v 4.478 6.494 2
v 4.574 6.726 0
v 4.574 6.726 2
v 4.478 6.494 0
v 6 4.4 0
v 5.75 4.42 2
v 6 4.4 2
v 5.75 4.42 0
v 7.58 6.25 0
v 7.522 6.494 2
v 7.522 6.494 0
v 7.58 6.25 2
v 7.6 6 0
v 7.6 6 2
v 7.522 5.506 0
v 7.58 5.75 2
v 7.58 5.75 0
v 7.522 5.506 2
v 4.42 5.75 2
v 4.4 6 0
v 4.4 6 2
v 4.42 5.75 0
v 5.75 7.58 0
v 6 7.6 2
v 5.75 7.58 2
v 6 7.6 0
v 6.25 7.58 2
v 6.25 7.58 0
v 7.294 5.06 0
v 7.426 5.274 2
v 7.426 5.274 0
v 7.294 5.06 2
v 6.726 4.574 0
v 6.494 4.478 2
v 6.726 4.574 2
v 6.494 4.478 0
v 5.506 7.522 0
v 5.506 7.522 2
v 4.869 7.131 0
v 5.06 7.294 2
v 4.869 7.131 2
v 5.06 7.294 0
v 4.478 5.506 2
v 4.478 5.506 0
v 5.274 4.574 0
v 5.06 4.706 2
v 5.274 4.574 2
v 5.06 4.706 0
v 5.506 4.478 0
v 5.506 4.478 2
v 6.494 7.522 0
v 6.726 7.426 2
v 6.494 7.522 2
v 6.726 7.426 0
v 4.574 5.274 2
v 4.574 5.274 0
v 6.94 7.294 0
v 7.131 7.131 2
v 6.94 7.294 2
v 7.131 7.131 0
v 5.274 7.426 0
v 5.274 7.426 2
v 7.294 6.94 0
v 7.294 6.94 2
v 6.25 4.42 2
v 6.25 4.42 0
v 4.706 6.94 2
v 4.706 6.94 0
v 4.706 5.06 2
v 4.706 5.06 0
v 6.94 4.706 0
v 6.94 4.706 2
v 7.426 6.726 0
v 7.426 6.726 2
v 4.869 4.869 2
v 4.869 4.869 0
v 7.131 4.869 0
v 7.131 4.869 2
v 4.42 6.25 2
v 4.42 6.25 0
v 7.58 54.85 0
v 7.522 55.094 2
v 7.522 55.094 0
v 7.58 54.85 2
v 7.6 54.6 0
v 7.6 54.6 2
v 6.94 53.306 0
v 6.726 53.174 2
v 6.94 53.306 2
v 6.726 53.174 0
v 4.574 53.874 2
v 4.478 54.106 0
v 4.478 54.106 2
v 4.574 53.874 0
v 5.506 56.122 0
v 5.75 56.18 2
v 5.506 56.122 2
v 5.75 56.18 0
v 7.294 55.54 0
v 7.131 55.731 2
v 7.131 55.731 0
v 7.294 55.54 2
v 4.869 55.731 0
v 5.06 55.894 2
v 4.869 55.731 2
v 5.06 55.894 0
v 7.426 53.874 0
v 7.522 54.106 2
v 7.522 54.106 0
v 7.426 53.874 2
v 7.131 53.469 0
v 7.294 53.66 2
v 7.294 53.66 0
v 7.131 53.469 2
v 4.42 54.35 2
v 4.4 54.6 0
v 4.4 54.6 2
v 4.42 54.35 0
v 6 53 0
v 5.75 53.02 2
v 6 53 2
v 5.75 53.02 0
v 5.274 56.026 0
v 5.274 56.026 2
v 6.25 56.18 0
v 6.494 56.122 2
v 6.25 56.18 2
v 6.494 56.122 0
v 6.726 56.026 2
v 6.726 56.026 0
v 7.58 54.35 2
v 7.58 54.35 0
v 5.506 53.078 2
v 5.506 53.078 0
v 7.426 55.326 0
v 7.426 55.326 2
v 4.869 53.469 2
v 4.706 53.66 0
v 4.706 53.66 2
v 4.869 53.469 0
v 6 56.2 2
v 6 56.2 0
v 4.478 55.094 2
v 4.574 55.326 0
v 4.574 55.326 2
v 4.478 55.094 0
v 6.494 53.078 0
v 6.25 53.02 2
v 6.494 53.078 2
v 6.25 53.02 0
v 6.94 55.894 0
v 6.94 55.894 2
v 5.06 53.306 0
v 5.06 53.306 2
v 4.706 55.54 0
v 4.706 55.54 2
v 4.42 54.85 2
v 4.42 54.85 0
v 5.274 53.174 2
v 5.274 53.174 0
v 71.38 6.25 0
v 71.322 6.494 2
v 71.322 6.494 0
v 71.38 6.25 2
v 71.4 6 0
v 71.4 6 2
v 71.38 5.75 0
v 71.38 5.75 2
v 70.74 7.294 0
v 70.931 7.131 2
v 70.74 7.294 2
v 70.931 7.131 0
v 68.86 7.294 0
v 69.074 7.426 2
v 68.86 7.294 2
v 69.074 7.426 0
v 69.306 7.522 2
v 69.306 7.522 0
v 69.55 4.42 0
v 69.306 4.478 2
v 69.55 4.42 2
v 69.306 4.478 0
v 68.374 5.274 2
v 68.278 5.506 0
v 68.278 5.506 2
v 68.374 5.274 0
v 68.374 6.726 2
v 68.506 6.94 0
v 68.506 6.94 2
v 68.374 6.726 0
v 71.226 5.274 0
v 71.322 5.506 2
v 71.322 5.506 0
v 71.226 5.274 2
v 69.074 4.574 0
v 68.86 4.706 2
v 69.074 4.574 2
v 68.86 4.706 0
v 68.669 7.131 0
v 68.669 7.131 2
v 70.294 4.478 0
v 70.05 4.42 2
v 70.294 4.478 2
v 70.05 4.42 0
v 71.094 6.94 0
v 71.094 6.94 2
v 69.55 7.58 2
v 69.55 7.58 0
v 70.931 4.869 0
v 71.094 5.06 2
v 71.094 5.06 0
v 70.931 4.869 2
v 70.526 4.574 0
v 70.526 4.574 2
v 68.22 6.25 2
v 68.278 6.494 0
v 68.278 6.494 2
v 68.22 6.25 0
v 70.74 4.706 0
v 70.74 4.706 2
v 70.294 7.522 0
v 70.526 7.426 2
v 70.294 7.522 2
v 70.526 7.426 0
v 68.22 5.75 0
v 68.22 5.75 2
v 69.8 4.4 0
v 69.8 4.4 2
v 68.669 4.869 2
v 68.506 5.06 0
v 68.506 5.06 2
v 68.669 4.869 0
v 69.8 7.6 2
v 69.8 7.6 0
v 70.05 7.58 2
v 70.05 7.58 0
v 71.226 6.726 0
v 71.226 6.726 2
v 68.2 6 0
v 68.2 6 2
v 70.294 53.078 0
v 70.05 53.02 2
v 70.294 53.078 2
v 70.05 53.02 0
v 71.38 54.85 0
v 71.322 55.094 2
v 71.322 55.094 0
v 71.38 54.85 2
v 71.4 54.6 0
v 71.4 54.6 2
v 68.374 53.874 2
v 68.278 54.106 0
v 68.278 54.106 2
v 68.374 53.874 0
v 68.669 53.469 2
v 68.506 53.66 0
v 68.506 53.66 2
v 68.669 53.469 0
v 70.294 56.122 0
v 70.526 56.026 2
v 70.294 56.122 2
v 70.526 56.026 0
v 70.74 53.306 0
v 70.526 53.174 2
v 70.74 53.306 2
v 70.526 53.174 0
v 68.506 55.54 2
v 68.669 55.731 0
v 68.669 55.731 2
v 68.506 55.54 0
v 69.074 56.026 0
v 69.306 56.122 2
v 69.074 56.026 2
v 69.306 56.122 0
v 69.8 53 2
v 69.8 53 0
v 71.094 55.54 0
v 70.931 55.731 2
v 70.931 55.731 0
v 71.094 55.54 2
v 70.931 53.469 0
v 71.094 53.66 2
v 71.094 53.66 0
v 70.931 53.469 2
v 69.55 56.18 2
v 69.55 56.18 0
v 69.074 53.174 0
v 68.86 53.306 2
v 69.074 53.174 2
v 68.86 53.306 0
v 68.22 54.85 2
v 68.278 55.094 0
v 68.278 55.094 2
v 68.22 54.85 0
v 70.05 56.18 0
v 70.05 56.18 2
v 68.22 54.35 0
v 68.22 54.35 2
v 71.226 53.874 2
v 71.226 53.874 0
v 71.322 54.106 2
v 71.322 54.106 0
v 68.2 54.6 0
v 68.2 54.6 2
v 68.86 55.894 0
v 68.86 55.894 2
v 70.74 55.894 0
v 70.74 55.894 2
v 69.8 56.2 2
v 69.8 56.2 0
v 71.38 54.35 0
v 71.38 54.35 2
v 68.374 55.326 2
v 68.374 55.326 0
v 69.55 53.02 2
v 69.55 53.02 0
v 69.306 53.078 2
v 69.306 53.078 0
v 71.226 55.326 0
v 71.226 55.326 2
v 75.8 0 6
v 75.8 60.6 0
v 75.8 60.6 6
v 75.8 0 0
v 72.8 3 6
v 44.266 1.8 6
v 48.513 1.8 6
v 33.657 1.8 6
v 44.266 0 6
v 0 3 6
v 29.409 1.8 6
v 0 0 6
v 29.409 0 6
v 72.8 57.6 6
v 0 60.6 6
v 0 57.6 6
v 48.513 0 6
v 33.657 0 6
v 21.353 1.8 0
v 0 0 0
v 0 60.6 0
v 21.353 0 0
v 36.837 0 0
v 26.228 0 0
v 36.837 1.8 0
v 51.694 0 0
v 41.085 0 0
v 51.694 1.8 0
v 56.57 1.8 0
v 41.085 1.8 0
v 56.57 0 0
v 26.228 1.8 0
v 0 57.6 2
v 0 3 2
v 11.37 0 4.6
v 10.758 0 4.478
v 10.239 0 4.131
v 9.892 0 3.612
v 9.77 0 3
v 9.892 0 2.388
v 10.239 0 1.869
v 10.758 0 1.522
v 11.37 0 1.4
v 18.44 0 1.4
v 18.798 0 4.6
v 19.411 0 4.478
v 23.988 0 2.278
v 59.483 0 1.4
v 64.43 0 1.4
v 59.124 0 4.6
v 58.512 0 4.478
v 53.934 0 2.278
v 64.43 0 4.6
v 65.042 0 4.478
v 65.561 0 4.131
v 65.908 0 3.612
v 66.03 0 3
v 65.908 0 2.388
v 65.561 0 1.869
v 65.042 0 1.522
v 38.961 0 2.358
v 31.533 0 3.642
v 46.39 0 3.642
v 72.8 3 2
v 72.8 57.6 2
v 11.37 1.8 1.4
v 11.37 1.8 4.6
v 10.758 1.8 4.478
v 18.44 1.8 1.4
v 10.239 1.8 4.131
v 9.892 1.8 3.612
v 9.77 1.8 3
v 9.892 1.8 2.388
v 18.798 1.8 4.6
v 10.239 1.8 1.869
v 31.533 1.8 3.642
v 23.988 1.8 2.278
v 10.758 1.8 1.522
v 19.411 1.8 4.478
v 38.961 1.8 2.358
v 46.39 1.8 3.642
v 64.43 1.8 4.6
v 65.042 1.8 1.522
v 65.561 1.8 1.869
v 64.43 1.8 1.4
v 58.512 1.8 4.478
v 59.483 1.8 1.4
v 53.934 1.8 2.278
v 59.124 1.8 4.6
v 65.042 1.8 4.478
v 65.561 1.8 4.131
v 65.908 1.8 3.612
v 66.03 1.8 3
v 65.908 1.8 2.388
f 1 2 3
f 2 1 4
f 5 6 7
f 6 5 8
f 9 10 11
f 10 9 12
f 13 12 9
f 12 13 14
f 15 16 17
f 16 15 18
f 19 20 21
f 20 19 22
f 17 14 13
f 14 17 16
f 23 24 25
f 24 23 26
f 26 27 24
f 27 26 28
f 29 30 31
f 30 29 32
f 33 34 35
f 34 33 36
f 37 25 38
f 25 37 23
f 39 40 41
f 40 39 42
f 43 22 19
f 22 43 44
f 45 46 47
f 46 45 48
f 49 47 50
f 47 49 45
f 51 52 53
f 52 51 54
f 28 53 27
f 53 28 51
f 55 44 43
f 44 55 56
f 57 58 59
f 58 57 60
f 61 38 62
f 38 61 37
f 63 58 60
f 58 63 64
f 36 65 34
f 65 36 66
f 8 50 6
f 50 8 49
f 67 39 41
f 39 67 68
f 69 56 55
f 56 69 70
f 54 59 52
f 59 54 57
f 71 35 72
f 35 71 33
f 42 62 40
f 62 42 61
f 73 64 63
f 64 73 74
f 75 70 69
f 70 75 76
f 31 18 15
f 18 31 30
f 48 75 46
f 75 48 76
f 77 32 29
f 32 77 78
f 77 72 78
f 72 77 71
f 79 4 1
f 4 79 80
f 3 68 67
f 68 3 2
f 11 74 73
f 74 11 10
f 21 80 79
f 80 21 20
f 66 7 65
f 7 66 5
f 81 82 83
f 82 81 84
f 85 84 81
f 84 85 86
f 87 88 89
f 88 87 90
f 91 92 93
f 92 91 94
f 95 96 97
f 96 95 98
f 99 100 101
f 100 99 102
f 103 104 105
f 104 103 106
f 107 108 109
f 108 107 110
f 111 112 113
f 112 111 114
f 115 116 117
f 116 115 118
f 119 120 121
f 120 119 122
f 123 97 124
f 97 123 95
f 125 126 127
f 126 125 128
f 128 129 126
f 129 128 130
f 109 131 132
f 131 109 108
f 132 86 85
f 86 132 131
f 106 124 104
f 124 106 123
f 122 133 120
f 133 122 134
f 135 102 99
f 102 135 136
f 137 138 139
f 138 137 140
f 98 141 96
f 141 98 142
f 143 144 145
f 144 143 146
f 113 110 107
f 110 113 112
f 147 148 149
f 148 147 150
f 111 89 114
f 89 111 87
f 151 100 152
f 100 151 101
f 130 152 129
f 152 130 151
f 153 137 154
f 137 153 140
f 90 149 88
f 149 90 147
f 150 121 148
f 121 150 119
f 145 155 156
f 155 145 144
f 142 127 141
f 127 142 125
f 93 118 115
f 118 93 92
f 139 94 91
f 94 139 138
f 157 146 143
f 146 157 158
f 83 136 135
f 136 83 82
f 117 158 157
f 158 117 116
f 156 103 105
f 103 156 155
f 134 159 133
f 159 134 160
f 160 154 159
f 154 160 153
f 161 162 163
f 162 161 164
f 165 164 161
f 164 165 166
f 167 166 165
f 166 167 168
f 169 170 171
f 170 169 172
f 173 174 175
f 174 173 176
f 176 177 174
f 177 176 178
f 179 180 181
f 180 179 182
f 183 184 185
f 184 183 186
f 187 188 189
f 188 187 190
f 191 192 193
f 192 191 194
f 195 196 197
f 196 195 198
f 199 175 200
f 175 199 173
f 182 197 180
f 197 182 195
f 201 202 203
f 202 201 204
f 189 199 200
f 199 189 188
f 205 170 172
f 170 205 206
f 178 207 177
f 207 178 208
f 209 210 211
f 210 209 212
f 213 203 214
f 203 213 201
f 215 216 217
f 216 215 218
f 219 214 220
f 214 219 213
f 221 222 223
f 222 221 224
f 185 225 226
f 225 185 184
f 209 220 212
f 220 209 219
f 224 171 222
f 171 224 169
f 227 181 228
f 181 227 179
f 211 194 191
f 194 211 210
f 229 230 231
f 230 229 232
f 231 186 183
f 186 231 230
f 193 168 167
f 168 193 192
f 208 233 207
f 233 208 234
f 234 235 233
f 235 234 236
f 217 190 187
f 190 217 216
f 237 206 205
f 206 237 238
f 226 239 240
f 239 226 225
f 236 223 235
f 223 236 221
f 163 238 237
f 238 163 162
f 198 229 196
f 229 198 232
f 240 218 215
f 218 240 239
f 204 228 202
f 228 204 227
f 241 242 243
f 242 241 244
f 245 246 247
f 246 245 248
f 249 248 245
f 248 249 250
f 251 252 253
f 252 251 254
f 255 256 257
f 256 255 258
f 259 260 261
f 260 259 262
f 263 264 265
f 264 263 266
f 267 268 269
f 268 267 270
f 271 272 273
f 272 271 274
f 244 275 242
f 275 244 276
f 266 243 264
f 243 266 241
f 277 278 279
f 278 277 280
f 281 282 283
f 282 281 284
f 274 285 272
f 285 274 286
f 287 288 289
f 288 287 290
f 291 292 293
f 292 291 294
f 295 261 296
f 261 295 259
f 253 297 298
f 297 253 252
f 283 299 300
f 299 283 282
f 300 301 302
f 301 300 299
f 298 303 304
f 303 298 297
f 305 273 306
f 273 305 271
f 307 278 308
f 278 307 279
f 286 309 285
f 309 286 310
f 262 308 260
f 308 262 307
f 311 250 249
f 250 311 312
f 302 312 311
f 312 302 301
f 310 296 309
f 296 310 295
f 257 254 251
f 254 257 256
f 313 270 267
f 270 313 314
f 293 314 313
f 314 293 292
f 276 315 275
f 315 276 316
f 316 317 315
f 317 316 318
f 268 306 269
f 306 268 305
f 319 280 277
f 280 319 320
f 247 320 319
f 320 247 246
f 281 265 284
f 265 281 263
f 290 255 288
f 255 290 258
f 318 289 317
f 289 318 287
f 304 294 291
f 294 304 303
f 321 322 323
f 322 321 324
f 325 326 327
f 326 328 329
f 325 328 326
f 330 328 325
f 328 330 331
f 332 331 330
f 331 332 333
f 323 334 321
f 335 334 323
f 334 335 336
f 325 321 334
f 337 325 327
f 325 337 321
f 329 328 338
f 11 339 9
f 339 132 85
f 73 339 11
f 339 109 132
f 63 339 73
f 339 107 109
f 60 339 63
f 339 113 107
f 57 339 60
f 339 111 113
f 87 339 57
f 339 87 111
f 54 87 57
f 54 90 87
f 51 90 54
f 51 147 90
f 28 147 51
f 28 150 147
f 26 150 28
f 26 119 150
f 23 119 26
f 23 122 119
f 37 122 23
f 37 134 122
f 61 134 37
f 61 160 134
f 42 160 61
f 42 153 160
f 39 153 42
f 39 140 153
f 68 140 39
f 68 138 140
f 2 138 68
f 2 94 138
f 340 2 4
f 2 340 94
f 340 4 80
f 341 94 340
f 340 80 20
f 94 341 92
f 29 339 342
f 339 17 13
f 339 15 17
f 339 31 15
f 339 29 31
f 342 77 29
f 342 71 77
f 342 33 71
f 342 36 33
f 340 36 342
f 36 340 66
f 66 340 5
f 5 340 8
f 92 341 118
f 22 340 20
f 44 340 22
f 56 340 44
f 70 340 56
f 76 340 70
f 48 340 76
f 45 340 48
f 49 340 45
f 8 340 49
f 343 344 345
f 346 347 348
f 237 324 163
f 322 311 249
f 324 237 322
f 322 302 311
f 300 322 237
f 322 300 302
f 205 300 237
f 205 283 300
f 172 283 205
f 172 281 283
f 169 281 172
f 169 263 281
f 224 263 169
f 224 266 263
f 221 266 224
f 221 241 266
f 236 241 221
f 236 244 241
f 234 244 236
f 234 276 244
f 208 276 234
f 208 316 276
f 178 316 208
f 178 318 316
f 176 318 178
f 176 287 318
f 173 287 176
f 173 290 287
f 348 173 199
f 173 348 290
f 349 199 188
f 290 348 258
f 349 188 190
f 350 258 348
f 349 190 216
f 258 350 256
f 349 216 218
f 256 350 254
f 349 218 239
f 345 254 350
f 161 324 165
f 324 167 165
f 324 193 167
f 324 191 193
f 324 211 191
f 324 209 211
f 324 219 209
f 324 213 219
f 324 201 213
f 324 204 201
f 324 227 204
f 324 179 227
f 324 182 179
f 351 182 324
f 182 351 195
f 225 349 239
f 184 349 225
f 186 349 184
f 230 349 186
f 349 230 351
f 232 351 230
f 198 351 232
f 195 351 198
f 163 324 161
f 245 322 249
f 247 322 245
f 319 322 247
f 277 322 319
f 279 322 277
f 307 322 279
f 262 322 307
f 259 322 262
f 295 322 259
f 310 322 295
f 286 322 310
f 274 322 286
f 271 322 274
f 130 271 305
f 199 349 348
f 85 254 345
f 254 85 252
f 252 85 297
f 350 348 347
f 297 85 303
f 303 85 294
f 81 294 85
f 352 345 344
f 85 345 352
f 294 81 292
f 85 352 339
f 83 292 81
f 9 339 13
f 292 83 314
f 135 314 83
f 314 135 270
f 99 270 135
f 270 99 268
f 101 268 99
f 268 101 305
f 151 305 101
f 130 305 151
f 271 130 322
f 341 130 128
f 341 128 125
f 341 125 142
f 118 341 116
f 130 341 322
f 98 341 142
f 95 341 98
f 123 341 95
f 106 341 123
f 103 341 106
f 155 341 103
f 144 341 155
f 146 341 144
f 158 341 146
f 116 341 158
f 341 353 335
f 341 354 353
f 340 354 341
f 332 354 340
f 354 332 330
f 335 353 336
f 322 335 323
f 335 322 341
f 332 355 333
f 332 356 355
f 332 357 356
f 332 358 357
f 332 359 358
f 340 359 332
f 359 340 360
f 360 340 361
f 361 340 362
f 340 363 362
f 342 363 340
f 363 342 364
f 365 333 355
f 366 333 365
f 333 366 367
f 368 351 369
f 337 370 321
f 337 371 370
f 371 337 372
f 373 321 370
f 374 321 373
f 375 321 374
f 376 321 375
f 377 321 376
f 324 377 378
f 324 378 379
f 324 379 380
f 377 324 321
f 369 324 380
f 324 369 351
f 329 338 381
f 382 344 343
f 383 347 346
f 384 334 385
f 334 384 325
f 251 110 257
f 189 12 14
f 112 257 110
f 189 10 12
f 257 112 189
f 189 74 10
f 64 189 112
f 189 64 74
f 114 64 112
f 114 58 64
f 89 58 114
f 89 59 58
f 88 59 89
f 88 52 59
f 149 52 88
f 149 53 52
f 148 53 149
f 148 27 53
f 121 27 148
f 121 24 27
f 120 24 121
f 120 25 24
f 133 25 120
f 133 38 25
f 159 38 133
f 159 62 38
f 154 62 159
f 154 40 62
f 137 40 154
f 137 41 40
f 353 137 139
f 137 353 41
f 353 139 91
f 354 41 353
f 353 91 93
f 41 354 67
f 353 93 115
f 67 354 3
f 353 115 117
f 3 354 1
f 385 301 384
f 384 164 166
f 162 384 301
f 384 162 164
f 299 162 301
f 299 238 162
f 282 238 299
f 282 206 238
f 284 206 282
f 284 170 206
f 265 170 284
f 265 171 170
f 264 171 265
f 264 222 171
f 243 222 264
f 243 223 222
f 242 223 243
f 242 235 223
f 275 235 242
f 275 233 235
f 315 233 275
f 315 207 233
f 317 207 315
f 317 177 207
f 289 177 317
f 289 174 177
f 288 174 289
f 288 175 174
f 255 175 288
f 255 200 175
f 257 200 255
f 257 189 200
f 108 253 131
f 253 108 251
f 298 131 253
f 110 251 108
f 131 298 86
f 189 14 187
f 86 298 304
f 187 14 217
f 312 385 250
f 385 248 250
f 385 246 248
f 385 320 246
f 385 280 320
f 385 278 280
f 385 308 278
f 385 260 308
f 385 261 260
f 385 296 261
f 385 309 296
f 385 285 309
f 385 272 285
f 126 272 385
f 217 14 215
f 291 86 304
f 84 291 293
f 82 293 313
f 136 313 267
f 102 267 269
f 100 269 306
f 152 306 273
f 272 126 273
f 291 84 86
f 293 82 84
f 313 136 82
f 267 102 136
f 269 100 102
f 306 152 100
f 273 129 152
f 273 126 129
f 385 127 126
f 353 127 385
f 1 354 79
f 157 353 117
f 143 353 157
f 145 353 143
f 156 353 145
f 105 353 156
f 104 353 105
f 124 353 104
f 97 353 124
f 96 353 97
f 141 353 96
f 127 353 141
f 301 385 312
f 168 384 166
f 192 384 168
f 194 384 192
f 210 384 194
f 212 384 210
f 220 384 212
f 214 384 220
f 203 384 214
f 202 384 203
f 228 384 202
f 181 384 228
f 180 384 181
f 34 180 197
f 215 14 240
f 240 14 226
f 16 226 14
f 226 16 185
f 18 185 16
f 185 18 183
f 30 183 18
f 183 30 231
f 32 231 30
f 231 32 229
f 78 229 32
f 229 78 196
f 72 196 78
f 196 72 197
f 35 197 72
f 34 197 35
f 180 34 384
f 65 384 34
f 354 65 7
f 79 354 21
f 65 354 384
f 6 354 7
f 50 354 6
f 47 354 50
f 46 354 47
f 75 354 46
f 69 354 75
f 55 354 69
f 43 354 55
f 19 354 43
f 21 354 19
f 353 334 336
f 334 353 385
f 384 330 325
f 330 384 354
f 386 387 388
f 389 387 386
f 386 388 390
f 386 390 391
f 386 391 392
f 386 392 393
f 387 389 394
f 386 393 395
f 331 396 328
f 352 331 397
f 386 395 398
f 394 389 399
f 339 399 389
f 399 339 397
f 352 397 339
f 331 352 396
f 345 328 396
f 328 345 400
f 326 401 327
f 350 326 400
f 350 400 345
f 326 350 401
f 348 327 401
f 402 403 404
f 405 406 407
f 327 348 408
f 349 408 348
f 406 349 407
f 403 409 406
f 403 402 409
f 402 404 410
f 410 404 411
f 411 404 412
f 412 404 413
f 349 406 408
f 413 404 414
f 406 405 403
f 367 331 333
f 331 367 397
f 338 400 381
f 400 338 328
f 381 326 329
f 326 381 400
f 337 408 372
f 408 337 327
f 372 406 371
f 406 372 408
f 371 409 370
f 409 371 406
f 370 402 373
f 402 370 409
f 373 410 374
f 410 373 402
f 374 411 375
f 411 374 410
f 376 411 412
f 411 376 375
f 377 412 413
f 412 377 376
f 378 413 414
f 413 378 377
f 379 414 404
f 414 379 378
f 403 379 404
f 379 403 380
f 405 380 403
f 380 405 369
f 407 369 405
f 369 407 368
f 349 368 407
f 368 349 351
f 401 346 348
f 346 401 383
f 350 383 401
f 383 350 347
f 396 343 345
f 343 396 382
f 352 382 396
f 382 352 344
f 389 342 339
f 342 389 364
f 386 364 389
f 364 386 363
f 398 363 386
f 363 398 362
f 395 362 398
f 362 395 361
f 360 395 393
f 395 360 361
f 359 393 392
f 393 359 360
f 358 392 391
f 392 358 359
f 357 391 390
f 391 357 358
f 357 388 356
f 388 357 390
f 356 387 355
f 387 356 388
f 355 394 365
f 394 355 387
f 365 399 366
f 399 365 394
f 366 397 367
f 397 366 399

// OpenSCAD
// Base aberta pro Arduino Uno/Nano — fiação toda visível por cima (mesmo espírito da protoboard_tray)
// Não trava nos furos de parafuso do próprio Arduino: é uma bandeja com aba (lip),
// só segura a placa pelas bordas. Furos de fixação são pra prender a bandeja na bancada.

// --- Parametros do Arduino Uno R3 ---
pcb_l = 68.6;
pcb_w = 53.4;

// Conectores (USB + jack de energia) ficam na mesma ponta curta (largura), avançando um pouco
// pra fora da borda da placa — corte generoso, não precisa ser milimetricamente exato porque
// tudo fica exposto/visível de qualquer forma.
conn_overhang = 4;   // quanto o conector avança além da borda do PCB
conn_h        = 14;  // altura livre do rasgo (cobre USB + jack de uma vez)

// --- Parametros da bandeja (iguais à protoboard_tray pra manter o mesmo visual) ---
clearance  = 0.6;   // folga um pouco maior que a protoboard (Arduino tem componentes salientes embaixo)
wall_t     = 3;      // engrossada de 2->3mm pra aguentar uma gravação bem mais funda e visível
floor_t    = 2;
lip_h      = 4;      // um pouco mais alto pra segurar o Arduino, que é mais pesado que a protoboard
hole_d     = 3.2;    // furo M3 pra fixar na bancada
hole_inset = 6;

// --- Selo gravado (símbolo de resistor) na parede da frente (Y=0), a que não tem
// corte de conector — gravação bem marcada, mas ainda sem vazar a parede (3mm) ---
engrave_depth = 1.8;   // sobra 1,2mm de parede sólida atrás — bem mais funda que antes (era 1,0/2mm)
res_line_r    = 1.6;   // linha bem mais grossa que antes (era 0,9)

$fn = 40;

outer_l = pcb_l + 2*clearance + 2*wall_t;
outer_w = pcb_w + 2*clearance + 2*wall_t;
total_h = floor_t + lip_h;

res_w = outer_l * 0.7;
res_h = total_h * 0.85;

// pontos do símbolo clássico de resistor (zigue-zague), normalizados em res_w x res_h
function res_pts() = [
    [0.00*res_w,  0.0*res_h],
    [0.14*res_w,  0.0*res_h],
    [0.24*res_w,  0.5*res_h],
    [0.38*res_w, -0.5*res_h],
    [0.52*res_w,  0.5*res_h],
    [0.66*res_w, -0.5*res_h],
    [0.80*res_w,  0.5*res_h],
    [0.90*res_w,  0.0*res_h],
    [1.00*res_w,  0.0*res_h],
];

// desenha uma linha grossa em 2D como corrente de cápsulas (hull de círculos) —
// evita polígono autointersectante (problema que já pegamos no raio do pedestal)
module linha_grossa_2d(pts, r) {
    for (i = [0 : len(pts) - 2])
        hull() {
            translate(pts[i]) circle(r = r, $fn = 16);
            translate(pts[i + 1]) circle(r = r, $fn = 16);
        }
}

module selo_resistor() {
    translate([(outer_l - res_w) / 2, -0.1, total_h / 2])
        rotate([-90, 0, 0])
            linear_extrude(height = engrave_depth + 0.1)
                linha_grossa_2d(res_pts(), res_line_r);
}

module base() {
    difference() {
        cube([outer_l, outer_w, total_h]);

        // bolsão interno onde o Arduino encaixa
        translate([wall_t, wall_t, floor_t])
            cube([pcb_l + 2*clearance, pcb_w + 2*clearance, lip_h + 1]);

        // rasgo pros conectores (USB + DC jack) numa parede curta
        translate([-1, wall_t, floor_t])
            cube([wall_t + conn_overhang + 1, pcb_w + 2*clearance, conn_h]);

        // furos de fixação nos 4 cantos
        for (x = [hole_inset, outer_l - hole_inset])
            for (y = [hole_inset, outer_w - hole_inset])
                translate([x, y, -1])
                    cylinder(d = hole_d, h = total_h + 2);

        // selo gravado do resistor, na parede de fora (Y=0)
        selo_resistor();
    }
}

base();

// NÃO TESTADO — assim como a protoboard_tray, imprimir 1 peça de teste antes de confirmar
// que o Arduino encaixa (folga de componentes embaixo da placa: cristal, leds, headers).
